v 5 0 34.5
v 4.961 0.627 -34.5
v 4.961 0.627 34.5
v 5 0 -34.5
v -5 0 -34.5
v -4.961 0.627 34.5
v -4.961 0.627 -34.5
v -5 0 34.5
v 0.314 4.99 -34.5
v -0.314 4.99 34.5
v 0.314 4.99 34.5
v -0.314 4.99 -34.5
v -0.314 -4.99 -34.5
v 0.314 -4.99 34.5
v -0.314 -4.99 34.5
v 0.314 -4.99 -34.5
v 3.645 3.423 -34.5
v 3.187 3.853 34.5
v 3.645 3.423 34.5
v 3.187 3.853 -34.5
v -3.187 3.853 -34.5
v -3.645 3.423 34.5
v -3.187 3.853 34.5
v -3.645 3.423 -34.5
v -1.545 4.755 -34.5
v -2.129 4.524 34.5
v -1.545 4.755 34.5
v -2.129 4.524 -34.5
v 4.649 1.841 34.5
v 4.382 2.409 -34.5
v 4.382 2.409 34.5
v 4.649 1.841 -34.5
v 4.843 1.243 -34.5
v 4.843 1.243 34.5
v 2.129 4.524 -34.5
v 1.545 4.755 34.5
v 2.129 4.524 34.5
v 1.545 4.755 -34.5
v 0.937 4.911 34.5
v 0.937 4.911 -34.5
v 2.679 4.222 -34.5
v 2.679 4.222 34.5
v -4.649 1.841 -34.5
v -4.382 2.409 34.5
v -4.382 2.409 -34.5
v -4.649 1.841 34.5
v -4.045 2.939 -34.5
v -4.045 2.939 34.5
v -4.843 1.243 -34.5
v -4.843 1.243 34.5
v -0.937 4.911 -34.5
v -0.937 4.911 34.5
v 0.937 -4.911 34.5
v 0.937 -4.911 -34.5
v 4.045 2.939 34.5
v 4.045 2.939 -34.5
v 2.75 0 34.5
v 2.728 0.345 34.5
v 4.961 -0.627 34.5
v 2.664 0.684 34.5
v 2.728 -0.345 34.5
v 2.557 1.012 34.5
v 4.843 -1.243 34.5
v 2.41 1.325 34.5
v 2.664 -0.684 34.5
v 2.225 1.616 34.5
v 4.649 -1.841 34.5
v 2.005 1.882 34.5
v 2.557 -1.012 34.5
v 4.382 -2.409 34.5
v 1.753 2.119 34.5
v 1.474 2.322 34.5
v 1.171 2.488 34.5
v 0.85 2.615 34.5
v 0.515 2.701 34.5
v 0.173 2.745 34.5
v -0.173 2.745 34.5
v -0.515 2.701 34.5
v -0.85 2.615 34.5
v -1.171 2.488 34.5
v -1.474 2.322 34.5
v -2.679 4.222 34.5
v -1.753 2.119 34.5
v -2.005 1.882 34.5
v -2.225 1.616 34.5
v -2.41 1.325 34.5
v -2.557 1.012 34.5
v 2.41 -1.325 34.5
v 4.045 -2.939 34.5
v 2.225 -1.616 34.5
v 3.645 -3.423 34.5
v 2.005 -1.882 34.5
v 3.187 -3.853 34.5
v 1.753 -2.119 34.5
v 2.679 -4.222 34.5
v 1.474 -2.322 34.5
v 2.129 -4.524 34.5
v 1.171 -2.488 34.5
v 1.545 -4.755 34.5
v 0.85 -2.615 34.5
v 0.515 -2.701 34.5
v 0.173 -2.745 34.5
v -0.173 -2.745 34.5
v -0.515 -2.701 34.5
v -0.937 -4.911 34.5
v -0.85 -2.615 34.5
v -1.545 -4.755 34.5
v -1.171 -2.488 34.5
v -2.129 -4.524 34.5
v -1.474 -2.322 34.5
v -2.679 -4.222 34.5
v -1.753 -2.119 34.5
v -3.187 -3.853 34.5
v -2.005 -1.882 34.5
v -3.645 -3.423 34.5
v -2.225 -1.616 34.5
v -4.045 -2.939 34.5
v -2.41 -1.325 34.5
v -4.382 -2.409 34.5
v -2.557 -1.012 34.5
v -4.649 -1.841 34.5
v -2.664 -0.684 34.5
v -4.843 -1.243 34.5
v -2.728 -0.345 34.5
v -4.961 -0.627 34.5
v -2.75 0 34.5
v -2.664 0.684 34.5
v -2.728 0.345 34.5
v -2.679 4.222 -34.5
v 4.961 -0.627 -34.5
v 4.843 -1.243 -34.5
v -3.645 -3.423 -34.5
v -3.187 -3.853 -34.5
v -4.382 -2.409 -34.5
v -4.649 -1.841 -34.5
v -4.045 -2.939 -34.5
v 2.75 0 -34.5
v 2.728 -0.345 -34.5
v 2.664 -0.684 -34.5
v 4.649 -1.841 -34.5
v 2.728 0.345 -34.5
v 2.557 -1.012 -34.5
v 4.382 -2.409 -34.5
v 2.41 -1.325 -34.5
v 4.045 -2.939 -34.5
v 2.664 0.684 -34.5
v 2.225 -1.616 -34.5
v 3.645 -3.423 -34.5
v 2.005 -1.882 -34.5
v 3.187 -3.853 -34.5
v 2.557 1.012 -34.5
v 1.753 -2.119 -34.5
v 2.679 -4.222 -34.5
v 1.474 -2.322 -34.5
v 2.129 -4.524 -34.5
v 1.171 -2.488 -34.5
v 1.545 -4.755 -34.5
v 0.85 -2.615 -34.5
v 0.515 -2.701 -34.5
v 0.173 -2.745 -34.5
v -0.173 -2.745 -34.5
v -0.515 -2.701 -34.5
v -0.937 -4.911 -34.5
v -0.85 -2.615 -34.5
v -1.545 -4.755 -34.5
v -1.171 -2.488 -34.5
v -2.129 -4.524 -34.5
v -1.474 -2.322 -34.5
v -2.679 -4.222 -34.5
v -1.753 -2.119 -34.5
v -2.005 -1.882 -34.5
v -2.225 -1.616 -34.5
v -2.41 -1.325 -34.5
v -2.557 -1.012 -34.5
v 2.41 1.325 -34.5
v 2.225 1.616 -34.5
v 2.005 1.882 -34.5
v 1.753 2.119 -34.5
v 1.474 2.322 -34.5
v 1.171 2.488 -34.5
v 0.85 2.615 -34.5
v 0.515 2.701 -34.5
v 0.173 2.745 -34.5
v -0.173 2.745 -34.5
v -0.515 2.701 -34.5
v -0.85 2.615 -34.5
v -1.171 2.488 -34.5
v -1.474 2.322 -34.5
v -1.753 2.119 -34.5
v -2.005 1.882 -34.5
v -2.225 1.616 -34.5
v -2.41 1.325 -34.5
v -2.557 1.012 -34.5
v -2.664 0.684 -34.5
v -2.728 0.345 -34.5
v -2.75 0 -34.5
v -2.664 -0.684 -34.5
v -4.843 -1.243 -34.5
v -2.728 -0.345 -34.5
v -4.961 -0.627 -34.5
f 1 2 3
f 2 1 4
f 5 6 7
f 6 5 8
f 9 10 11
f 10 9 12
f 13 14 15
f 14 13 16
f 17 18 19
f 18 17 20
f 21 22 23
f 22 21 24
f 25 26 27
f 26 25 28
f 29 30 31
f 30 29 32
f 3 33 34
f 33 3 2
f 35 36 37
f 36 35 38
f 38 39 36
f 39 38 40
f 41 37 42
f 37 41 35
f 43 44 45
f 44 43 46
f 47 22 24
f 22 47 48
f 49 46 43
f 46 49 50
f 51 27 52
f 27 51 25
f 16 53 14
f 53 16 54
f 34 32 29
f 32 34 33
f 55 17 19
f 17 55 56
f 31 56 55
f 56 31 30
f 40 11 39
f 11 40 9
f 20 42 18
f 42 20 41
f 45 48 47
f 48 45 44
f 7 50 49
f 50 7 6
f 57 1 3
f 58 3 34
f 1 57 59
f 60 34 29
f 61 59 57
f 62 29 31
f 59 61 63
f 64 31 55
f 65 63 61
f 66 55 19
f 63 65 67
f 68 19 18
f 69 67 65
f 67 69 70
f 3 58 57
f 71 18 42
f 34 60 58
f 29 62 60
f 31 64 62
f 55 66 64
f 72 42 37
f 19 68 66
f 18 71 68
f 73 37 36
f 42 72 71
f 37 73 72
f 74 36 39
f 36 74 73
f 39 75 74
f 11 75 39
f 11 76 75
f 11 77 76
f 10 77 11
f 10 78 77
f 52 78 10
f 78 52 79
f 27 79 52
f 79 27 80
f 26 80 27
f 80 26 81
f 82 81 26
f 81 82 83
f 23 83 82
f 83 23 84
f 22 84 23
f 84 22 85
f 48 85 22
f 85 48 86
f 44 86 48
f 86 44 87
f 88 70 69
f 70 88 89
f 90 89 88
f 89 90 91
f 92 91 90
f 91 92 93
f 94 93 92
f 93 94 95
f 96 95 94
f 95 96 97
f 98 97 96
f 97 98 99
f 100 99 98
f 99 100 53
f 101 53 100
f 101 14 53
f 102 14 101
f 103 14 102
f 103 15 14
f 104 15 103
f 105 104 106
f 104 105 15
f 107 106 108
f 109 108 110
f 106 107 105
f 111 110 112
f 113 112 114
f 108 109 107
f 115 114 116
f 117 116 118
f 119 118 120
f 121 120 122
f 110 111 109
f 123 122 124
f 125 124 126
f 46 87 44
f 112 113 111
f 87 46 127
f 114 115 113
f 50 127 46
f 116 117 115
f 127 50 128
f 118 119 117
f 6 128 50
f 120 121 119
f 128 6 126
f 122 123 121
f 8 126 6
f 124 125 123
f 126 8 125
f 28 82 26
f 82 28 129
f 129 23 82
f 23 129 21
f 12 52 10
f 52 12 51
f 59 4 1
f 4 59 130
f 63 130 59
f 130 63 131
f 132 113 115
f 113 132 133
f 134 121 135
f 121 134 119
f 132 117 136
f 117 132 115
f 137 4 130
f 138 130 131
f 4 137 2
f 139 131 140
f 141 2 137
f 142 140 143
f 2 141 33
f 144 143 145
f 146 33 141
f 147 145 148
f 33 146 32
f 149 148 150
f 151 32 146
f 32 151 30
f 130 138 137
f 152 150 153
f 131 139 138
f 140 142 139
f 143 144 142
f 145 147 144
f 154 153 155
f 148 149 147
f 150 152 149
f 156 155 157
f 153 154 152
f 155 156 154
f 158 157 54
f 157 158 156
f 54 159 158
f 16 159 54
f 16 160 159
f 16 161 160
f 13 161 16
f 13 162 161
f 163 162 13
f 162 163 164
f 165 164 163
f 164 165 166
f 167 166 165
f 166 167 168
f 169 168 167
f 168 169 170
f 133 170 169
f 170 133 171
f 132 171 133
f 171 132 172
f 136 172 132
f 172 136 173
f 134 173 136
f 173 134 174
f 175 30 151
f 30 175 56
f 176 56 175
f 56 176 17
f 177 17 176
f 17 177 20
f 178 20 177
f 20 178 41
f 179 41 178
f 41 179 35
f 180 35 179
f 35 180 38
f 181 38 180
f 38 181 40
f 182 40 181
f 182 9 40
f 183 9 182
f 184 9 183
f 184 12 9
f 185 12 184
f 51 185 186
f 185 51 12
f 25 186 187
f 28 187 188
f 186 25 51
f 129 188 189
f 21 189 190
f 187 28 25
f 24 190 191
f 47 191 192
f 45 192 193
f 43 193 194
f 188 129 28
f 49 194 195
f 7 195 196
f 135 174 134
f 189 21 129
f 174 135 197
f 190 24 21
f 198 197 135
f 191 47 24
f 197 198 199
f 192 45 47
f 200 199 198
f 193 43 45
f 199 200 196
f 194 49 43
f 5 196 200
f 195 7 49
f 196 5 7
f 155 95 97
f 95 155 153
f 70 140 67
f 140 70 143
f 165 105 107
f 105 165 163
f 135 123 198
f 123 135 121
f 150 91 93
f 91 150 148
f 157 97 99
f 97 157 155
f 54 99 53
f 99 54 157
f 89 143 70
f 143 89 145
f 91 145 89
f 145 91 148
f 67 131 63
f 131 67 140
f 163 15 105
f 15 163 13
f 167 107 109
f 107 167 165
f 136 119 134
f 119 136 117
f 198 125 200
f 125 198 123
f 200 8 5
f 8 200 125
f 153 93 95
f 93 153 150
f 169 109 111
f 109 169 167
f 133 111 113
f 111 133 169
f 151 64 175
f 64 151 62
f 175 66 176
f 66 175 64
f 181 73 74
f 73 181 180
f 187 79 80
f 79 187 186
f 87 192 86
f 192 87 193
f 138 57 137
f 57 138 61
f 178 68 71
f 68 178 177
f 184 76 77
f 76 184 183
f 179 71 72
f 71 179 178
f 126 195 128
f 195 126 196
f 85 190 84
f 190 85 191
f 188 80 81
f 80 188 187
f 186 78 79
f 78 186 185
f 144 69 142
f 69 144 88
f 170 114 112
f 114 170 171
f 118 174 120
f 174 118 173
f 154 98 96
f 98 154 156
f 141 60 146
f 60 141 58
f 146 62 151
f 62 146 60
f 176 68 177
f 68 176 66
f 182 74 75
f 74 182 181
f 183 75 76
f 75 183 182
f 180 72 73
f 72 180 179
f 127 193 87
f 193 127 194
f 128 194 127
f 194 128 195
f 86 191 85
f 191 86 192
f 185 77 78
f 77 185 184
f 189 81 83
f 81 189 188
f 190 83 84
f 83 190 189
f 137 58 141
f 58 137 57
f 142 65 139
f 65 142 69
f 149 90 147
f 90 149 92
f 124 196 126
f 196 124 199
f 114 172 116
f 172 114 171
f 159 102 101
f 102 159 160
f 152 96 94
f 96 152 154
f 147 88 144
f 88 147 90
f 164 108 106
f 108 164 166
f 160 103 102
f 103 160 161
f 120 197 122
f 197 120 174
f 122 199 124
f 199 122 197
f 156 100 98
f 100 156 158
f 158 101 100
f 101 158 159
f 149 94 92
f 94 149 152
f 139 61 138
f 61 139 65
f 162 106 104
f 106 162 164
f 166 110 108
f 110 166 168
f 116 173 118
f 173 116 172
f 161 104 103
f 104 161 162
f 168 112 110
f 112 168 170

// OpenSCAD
$fn = 50;


difference() {
	union() {
		translate(v = [0, 0, -34.5000000000]) {
			cylinder(h = 69, r = 5.0000000000);
		}
	}
	union() {
		translate(v = [0, 0, -100.0000000000]) {
			cylinder(h = 200, r = 2.7500000000);
		}
	}
}
